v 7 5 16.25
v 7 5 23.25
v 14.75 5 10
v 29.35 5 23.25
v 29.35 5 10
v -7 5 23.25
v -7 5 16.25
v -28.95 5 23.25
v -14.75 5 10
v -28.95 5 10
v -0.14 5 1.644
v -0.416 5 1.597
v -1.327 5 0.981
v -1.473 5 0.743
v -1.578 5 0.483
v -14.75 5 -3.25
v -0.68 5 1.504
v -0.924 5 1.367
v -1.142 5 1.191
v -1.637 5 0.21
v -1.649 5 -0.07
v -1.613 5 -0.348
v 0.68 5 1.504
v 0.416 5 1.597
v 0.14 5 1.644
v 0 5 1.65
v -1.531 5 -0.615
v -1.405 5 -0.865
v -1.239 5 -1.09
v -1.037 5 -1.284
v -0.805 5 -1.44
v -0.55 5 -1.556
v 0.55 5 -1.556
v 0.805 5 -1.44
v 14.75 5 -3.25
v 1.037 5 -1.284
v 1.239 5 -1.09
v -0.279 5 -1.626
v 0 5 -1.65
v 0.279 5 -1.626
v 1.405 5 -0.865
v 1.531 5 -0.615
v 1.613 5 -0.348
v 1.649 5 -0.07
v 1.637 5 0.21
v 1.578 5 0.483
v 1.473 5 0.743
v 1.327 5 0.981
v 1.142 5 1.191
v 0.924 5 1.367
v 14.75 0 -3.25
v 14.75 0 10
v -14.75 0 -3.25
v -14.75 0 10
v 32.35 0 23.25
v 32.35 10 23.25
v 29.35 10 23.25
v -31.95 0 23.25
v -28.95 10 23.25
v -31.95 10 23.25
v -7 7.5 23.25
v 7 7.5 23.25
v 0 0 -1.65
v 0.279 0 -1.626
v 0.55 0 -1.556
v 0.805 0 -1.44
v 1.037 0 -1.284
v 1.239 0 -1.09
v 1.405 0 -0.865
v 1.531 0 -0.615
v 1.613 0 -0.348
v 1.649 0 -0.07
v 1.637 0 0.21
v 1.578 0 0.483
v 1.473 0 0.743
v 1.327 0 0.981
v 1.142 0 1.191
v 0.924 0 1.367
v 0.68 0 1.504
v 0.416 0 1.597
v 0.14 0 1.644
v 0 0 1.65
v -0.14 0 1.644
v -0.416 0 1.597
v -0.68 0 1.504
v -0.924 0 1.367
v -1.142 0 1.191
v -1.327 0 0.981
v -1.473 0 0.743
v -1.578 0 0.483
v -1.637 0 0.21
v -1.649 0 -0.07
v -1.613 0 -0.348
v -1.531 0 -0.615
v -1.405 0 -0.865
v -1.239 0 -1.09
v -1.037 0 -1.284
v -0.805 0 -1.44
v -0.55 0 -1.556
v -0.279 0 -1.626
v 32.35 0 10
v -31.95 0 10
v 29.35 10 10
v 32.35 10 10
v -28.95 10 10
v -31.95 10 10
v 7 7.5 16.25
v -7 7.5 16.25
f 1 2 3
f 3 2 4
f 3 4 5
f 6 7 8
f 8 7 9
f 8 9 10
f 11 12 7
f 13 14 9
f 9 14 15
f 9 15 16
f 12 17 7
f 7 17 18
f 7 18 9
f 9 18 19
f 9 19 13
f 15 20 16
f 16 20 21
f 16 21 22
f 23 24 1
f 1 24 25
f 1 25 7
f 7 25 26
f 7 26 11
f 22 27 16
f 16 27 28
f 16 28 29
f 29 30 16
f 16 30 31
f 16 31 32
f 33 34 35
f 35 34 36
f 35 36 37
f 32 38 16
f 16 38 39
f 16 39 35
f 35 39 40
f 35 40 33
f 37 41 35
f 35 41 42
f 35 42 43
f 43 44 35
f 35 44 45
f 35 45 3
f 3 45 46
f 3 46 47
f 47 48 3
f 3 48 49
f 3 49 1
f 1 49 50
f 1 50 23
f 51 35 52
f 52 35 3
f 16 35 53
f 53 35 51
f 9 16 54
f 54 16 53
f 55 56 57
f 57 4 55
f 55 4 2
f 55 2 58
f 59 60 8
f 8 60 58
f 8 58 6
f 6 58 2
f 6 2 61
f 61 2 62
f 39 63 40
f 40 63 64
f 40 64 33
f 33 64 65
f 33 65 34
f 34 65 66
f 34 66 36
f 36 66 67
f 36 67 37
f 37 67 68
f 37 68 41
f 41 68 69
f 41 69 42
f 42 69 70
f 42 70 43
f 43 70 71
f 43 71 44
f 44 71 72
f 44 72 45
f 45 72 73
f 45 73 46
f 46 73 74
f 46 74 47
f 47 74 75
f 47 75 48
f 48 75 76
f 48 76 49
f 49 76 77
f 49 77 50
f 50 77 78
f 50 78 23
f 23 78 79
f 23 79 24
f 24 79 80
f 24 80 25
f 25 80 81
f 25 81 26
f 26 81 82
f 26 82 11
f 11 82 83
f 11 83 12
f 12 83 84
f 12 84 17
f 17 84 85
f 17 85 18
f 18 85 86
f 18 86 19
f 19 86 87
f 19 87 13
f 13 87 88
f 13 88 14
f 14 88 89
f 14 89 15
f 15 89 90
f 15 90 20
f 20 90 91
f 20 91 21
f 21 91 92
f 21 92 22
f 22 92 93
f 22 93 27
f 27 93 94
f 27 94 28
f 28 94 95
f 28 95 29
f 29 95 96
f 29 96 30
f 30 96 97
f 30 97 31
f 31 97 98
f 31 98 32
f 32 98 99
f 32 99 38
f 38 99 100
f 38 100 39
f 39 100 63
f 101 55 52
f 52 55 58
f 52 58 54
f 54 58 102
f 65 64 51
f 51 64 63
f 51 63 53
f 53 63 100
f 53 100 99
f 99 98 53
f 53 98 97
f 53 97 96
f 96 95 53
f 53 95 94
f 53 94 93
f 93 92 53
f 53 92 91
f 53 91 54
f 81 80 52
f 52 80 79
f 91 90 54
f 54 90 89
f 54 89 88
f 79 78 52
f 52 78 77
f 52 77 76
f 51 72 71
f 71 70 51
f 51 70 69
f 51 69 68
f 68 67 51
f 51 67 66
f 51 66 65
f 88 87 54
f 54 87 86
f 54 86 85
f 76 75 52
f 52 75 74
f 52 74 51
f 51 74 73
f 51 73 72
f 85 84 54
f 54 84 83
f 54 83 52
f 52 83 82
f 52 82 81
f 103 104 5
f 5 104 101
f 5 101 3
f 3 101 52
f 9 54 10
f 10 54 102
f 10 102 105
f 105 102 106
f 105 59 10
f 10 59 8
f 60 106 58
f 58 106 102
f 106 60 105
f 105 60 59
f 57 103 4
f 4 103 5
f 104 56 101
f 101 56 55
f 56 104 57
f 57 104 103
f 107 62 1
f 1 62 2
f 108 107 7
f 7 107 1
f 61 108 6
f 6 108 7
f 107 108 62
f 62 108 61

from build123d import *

# Parameters (mm, degrees)
SKETCH1_W           = 29.5
SKETCH1_H           = 6.5
SKETCH1_R           = 1.65
SKETCH1_H_2         = 20
BOSS_EXTRUDE1_DEPTH = 5
SKETCH3_W           = 14.6
SKETCH3_H           = 13.25
SKETCH3_W_2         = 14.2
BOSS_EXTRUDE2_DEPTH = 5
SKETCH5_W           = 3
SKETCH5_H           = 13.25
BOSS_EXTRUDE4_DEPTH = 5
BOSS_EXTRUDE5_DEPTH = 2.5


with BuildPart() as part:
    # Sketch1 → Boss-Extrude1 (new body)
    # profile 1 of 2: a face of its own
    with BuildSketch(Plane(origin=(0, 0, 0), x_dir=(1, 0, 0), z_dir=(0, 1, 0))):
        Rectangle(SKETCH1_W, SKETCH1_H)
        with Locations(Location((0, 0, 0), (0, 0, 270))):
            Circle(SKETCH1_R, mode=Mode.SUBTRACT)
    # profile 2 of 2: a face of its own
    with BuildSketch(Plane(origin=(0, 0, 0), x_dir=(1, 0, 0), z_dir=(0, 1, 0))):
        with Locations((0, -13.25)):
            Rectangle(SKETCH1_W, SKETCH1_H_2)
    extrude(amount=BOSS_EXTRUDE1_DEPTH)

    # Sketch3 → Boss-Extrude2 (add)
    with BuildSketch(Plane(origin=(0, 5, 0), x_dir=(1, 0, 0), z_dir=(0, 1, 0))):
        with Locations((22.05, -16.625)):
            Rectangle(SKETCH3_W, SKETCH3_H)
        with Locations((-21.85, -16.625)):
            Rectangle(SKETCH3_W_2, SKETCH3_H)
    extrude(amount=-BOSS_EXTRUDE2_DEPTH)

    # Sketch5 → Boss-Extrude4 (add, symmetric)
    with BuildSketch(Plane(origin=(0, 5, 0), x_dir=(1, 0, 0), z_dir=(0, 1, 0))):
        with Locations((-30.45, -16.625)):
            Rectangle(SKETCH5_W, SKETCH5_H)
        with Locations((30.85, -16.625)):
            Rectangle(SKETCH5_W, SKETCH5_H)
    extrude(amount=BOSS_EXTRUDE4_DEPTH, both=True)

    # Sketch6 → Boss-Extrude5 (add)
    with BuildSketch(Plane(origin=(0, 5, 0), x_dir=(1, 0, 0), z_dir=(0, 1, 0))):
        Polygon((0, -23.25), (7, -23.25), (7, -16.25), (-7, -16.25), (-7, -23.25), align=None)
    extrude(amount=BOSS_EXTRUDE5_DEPTH)


solid = part.part
